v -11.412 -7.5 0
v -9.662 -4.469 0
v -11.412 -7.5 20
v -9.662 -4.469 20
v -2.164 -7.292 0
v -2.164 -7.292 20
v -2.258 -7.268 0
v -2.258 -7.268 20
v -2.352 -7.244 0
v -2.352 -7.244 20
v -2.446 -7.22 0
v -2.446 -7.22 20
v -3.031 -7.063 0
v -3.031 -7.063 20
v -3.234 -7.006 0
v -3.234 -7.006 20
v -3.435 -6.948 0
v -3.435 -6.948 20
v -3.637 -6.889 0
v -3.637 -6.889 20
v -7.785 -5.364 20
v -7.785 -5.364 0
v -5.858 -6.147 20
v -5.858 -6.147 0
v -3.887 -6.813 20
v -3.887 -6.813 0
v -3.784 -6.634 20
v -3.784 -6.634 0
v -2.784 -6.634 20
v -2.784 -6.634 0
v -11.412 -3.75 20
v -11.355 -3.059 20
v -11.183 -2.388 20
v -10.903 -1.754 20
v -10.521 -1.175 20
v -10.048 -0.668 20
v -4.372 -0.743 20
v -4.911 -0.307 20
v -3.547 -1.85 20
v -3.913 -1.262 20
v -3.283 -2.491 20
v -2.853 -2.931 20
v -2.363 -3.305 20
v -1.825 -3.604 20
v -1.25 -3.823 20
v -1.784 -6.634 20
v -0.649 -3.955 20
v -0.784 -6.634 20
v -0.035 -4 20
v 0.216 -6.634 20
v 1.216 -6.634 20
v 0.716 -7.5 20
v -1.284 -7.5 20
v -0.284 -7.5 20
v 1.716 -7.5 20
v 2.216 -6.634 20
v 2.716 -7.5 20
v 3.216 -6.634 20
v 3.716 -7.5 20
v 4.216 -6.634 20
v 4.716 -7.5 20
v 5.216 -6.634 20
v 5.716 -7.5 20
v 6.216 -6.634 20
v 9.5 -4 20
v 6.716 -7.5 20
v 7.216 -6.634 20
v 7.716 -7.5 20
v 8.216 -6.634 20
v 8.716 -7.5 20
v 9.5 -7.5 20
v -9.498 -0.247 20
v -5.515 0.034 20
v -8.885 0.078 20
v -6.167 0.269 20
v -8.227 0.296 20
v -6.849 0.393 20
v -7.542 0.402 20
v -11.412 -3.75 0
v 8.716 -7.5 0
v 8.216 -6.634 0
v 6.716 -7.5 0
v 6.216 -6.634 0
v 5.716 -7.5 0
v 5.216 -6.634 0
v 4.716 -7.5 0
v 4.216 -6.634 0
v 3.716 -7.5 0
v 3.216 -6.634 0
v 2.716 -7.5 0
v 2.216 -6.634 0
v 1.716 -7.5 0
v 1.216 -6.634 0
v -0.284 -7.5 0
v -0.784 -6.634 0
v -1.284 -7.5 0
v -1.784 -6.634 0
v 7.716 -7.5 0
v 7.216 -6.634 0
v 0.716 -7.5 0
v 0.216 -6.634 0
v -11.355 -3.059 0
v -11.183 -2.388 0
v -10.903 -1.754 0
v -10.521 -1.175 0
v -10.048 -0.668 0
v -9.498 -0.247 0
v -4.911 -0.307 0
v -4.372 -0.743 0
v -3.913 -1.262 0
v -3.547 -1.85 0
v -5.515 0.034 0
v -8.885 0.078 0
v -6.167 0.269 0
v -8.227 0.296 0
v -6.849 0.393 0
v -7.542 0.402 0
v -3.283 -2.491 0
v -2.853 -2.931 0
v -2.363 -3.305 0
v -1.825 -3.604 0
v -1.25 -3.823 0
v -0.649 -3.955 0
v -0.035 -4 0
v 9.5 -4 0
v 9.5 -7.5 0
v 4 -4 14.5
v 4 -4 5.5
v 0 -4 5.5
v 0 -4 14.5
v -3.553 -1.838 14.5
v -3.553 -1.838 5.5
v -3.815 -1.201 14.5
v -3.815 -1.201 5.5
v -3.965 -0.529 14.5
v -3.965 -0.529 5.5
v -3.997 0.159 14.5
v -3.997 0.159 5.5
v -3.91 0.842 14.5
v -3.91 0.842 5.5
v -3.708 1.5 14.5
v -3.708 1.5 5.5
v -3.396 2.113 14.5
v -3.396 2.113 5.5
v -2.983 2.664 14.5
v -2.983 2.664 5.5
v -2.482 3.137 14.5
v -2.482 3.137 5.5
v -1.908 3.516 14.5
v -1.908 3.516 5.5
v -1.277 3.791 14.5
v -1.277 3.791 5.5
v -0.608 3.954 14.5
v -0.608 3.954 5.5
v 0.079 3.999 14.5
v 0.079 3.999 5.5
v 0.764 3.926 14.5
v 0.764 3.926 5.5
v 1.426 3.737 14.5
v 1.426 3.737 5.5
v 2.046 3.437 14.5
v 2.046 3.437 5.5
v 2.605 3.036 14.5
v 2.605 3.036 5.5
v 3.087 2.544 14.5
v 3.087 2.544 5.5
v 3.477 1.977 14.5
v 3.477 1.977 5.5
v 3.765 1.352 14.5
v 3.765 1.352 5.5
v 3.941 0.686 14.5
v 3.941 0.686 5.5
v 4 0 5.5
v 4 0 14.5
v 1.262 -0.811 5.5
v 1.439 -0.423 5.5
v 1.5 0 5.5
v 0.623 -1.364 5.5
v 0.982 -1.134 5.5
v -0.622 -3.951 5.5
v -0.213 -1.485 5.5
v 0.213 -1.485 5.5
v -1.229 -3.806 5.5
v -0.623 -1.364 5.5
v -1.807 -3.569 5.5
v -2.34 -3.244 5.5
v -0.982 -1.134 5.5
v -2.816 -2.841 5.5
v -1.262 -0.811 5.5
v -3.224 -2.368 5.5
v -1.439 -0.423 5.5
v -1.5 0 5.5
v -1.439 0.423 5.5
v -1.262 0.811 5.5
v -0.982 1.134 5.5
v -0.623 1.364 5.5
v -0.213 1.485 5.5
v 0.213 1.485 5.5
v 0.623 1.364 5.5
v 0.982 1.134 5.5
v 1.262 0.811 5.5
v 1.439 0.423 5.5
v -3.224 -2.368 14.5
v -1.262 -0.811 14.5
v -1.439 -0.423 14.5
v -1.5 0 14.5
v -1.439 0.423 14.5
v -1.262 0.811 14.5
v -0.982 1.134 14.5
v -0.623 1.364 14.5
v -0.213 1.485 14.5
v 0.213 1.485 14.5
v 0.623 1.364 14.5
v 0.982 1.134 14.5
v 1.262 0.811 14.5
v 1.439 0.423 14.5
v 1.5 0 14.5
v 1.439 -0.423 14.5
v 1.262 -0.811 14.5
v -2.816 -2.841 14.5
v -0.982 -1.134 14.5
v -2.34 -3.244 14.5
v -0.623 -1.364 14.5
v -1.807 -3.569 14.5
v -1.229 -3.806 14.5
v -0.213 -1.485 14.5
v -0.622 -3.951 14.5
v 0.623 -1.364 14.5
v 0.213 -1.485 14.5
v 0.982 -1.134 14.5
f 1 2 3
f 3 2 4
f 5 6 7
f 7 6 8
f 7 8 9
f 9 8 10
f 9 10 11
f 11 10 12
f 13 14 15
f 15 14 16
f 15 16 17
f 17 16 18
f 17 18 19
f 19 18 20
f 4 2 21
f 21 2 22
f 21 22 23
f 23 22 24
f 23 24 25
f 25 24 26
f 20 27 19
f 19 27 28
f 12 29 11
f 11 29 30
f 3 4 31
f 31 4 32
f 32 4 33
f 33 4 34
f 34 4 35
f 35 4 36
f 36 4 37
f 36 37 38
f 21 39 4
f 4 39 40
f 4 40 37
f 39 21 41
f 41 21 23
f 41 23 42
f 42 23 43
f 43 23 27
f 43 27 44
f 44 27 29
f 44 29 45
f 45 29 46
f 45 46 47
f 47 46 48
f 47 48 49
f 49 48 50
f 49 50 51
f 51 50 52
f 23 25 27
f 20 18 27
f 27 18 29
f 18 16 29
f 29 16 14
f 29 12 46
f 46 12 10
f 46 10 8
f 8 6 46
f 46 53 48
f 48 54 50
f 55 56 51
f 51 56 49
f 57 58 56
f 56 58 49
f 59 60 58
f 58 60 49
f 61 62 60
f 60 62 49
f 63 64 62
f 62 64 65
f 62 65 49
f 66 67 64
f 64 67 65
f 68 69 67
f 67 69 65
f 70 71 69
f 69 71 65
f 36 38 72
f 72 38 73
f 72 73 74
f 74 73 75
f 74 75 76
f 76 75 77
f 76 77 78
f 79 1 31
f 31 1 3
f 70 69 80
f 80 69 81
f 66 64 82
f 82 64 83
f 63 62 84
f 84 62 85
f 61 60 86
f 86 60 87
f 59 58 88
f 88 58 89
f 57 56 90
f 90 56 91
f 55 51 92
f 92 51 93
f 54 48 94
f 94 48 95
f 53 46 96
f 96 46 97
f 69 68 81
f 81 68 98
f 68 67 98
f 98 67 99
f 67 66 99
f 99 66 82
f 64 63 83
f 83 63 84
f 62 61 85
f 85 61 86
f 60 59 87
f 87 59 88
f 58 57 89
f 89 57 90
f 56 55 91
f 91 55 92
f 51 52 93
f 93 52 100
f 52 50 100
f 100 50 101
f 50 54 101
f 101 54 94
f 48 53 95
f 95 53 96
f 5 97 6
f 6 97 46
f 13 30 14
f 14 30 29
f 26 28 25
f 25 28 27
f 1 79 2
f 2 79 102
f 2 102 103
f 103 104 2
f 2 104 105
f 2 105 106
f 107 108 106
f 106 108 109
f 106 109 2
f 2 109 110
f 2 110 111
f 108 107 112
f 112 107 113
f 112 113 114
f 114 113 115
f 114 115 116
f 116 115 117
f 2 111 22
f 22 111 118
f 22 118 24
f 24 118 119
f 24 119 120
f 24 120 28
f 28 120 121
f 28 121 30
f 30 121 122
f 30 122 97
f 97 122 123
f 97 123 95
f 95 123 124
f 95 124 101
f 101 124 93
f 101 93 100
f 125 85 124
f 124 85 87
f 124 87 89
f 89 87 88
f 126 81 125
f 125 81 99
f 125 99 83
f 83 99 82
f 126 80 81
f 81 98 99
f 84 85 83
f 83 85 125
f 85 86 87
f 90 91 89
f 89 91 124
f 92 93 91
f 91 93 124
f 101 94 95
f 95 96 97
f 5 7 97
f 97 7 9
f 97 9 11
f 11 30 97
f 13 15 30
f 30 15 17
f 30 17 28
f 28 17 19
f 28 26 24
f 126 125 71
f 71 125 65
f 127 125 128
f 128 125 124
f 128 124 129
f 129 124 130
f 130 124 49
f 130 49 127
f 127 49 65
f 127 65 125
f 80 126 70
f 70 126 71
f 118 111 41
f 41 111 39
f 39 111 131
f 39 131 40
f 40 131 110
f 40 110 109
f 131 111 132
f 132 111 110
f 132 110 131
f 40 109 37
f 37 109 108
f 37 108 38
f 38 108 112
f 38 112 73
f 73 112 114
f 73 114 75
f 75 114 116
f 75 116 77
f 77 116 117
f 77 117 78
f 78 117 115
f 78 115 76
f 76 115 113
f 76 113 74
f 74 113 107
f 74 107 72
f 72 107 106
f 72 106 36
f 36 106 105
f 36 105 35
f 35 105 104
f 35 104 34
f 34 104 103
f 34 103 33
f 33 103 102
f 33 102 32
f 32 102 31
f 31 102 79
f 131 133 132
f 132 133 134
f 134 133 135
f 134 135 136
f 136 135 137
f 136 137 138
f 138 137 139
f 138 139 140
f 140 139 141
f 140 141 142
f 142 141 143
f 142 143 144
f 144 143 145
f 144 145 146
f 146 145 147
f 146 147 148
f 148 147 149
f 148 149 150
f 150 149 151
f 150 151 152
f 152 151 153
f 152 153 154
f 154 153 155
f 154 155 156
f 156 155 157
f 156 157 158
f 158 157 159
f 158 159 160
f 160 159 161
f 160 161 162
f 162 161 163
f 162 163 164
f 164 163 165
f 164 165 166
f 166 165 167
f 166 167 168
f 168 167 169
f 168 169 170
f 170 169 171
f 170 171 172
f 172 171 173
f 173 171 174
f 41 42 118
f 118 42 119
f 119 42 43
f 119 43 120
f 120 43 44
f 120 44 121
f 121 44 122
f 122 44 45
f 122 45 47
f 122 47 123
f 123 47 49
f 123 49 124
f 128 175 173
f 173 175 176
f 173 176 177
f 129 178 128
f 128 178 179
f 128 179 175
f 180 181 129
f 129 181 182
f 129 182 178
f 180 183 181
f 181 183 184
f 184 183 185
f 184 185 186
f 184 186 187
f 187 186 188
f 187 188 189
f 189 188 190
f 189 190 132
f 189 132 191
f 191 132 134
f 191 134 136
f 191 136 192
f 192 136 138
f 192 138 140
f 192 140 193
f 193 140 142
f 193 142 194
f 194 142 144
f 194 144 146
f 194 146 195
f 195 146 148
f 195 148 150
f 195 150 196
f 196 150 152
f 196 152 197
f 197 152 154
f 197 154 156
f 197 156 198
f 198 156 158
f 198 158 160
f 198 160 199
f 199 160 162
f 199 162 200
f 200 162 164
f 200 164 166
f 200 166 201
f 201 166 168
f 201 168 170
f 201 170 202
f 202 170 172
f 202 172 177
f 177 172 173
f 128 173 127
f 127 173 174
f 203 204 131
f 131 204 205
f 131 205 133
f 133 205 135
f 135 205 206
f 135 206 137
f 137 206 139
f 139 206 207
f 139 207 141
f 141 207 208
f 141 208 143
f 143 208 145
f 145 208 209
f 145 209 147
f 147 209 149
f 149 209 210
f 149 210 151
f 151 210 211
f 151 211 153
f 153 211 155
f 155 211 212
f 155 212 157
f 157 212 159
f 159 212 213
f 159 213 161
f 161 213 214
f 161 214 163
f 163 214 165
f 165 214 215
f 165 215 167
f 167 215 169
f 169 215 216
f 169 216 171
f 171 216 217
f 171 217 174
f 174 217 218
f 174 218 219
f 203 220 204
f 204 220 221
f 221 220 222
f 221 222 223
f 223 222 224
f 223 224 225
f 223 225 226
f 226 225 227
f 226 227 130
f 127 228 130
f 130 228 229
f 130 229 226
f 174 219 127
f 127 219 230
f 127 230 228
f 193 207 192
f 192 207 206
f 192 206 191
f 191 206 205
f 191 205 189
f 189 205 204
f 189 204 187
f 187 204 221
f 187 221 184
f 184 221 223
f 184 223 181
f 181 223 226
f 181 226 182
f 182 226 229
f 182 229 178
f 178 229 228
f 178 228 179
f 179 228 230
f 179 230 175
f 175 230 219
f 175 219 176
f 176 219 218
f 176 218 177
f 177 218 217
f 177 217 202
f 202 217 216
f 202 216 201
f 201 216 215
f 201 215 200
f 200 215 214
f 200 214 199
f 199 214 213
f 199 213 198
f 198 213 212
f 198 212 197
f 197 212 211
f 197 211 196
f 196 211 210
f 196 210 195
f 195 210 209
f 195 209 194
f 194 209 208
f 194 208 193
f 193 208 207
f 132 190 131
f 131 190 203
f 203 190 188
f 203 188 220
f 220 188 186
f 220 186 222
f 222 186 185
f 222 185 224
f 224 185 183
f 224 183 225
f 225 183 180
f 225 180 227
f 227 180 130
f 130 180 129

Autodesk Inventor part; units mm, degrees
ref_plane "YZ Plane" through (0, 0, 0) normal (1, 0, 0) x (0, 1, 0)
ref_plane "XZ Plane" through (0, 0, 0) normal (0, 1, 0) x (-1, 0, 0)
ref_plane "XY Plane" through (0, 0, 0) normal (0, 0, 1) x (1, 0, 0)
sketch "Sketch23" plane through (0, 0, 0) normal (0, 0, 1) x (1, 0, 0)
  arc A0 (4, 0) -> (0, -4) centre (0, 0) ccw
  line L0 (-4, 0) -> (4, 0)
  line L1 (4, 0) -> (4, -4.25)
  line L2 (0, -4) -> (-3.2578, -4)
  line L3 (-4, -1.4182) -> (-4, 0)
  line L4 (10.5, -4.25) -> (10.5, -7.75)
  line L5 (10.5, -7.75) -> (-4.5, -7.75)
  line L6 (-7.75, -4.25) -> (-7.25, -4.25)
  line L7 (-3.2578, -4) -> (0, -4)
  line L8 (4, -4.25) -> (10.5, -4.25)
  line L9 (-7.25, -4.25) -> (-7.25, -3.75)
  arc A1 (-3.2578, -4) -> (-11.25, -3.75) centre (-7.25, -3.75) ccw
  line L10 (-11.25, -3.75) -> (-11.25, -7.75)
  line L11 (-7.25, -7.75) -> (-11.25, -7.75)
  line L12 (-7.25, -7.75) -> (-4.5, -7.75)
  dimension "d140" = 8
  dimension "d141" = 15
  dimension "d142" = 3.5
  dimension "d143" = 4.25
  dimension "d166" = 0.5
  dimension "d167" = 8
extrude "Extrusion25" add sketch "Sketch23" along normal blind 20 contours L0 A0 | L1 L8 L4 L5 L12 L11 L10 A1 L2 A0 L0
sketch "Sketch30" plane through (0, 0, 20) normal (0, 0, 1) x (1, 0, 0)
  circle A0 centre (0, 0) radius 1.5
  dimension "d168" = 3
extrude "Extrusion30" cut sketch "Sketch30" against normal through all
sketch "Sketch31" plane through (0, 0, 20) normal (0, 0, 1) x (1, 0, 0)
  line L0 (0, -4) -> (10.5, -4)
  line L1 (10.5, -7.75) -> (10.5, -4.25) projected
  line L2 (10.5, -4) -> (10.5, -7.75)
  line L3 (-11.25, -7.75) -> (10.5, -7.75) projected
  line L4 (0, -4) -> (10.5, -4)
  line L5 (10.5, -4) -> (10.5, -7.75)
  line L6 (10.5, -7.75) -> (0, -7.75)
  line L7 (0, -7.75) -> (0, -4)
  point P0 (0, 0)
  point P1 (0, -7.75)
extrude "Extrusion31" add sketch "Sketch31" against normal up to surface (20 mm away)
sketch "Sketch32" plane through (0, 0, 20) normal (0, 0, 1) x (1, 0, 0)
  circle A0 centre (0, 0) radius 4
  line L0 (4, -4) -> (10.5, -4) projected
  line L1 (0, 0) -> (4, 0)
  line L2 (4, 0) -> (4, -4)
  line L3 (4, -4) -> (0, -4)
  line L4 (0, -4) -> (0, 0)
  circle A1 centre (0, 0) radius 1.5
extrude "Extrusion32" cut sketch "Sketch32" against normal blind 5.5 contours L1 A1 L4 A0 | L2 L3 A0 | A0 L4 A1 L1
sketch "Sketch33" plane through (0, 0, 0) normal (0, 0, -1) x (-1, 0, 0)
  circle A0 centre (0, 0) radius 4
  circle A1 centre (0, 0) radius 1.5
  line L0 (-10.5, -4) -> (3.2578, -4) projected
  line L1 (0, 0) -> (-4, 0)
  line L2 (-4, 0) -> (-4, -4)
  line L3 (-4, -4) -> (0, -4)
  line L4 (0, -4) -> (0, 0)
  point P0 (0, -4)
extrude "Extrusion33" cut sketch "Sketch33" against normal blind 5.5 contours A0 L4 A1 L1 | L1 A1 L4 A0 | A0 L0 L2
fillet "Fillet3" radius 4.25 1 edges at (-3.2578, -4, 10)
sketch "Sketch34" plane through (0, 0, 20) normal (0, 0, 1) x (1, 0, 0)
  arc A0 (-3.7516, -1.8106) -> (-11.25, -3.75) centre (-7.25, -3.75) ccw projected
  circle A1 centre (-7.25, -3.75) radius 4.1624
  arc A2 (4, 0) -> (0, -4) centre (0, 0) ccw projected
  line L0 (-11.25, -7.75) -> (10.5, -7.75) projected
  line L1 (-8.4014, -7.75) -> (-6.0986, -7.75)
  line L2 (-11.25, -3.75) -> (-11.25, -7.75) projected
  arc A3 (-11.4124, -3.75) -> (-11.25, -7.75) centre (8.552, -4.9427) ccw
  line L3 (-11.25, -7.75) -> (-6.0986, -7.75)
  dimension "d185" = 20
extrude "Extrusion36" add sketch "Sketch34" against normal up to surface (20 mm away) contours L0 L2 A1 | A1 L0 | L2 A3 A1 picked at (-6.2004, -2.965)
sketch "Sketch35" plane through (0, 0, 20) normal (0, 0, 1) x (1, 0, 0)
  line L0 (10.5, -7.75) -> (10.5, -4) projected
  arc A0 (-11.4124, -3.75) -> (-11.25, -7.75) centre (8.552, -4.9427) ccw projected
  line L1 (10.5, -7.75) -> (-11.2838, -7.75)
  line L2 (-11.2838, -7.75) -> (-11.2838, -7.5)
  line L3 (-11.2838, -7.5) -> (10.5, -7.5)
  line L4 (10.5, -7.5) -> (10.5, -7.75)
  point P0 (0, 0)
  point P1 (10.5, -7.5)
  point P2 (-11.25, -7.75)
  dimension "d188" = 0.25
extrude "Extrusion37" cut sketch "Sketch35" against normal through all contours L1 A0 L3 L0
sketch "Sketch36" plane through (0, 0, 20) normal (0, 0, 1) x (1, 0, 0)
  line L0 (-11.2838, -7.5) -> (10.5, -7.5) projected
  line L1 (10.5, -4) -> (-0.0346, -4) projected
  line L2 (10.5, -7.5) -> (9.5, -7.5)
  line L3 (9.5, -7.5) -> (9.5, -4)
  line L4 (9.5, -4) -> (10.5, -4)
  line L5 (10.5, -4) -> (10.5, -7.5)
  point P0 (0, 0)
  dimension "d191" = 1
extrude "Extrusion38" cut sketch "Sketch36" against normal through all
sketch "Sketch38" plane through (0, 0, 0) normal (0, 0, -1) x (-1, 0, 0)
  arc A0 (11.2838, -7.5) -> (11.4124, -3.75) centre (-8.552, -4.9427) ccw projected
  line L0 (11.2838, -7.5) -> (10.7838, -6.634)
  line L1 (11.2838, -7.5) -> (12.2838, -7.5) construction
  line L2 (10.7838, -6.634) -> (10.2838, -7.5)
  line L3 (-9.5, -7.5) -> (11.2838, -7.5) projected
  line L4 (10.2838, -7.5) -> (9.7838, -6.634)
  line L5 (9.7838, -6.634) -> (9.2838, -7.5)
  line L6 (9.2838, -7.5) -> (8.7838, -6.634)
  line L7 (8.7838, -6.634) -> (8.2838, -7.5)
  line L8 (8.2838, -7.5) -> (7.7838, -6.634)
  line L9 (7.7838, -6.634) -> (7.2838, -7.5)
  line L10 (7.2838, -7.5) -> (6.7838, -6.634)
  line L11 (6.7838, -6.634) -> (6.2838, -7.5)
  line L12 (6.2838, -7.5) -> (5.7838, -6.634)
  line L13 (5.7838, -6.634) -> (5.2838, -7.5)
  line L14 (5.2838, -7.5) -> (4.7838, -6.634)
  line L15 (4.7838, -6.634) -> (4.2838, -7.5)
  line L16 (4.2838, -7.5) -> (3.7838, -6.634)
  line L17 (3.7838, -6.634) -> (3.2838, -7.5)
  line L18 (3.2838, -7.5) -> (2.7838, -6.634)
  line L19 (2.7838, -6.634) -> (2.2838, -7.5)
  line L20 (2.2838, -7.5) -> (1.7838, -6.634)
  line L21 (1.7838, -6.634) -> (1.2838, -7.5)
  line L22 (1.2838, -7.5) -> (0.7838, -6.634)
  line L23 (0.7838, -6.634) -> (0.2838, -7.5)
  line L24 (0.2838, -7.5) -> (-0.2162, -6.634)
  line L25 (-0.2162, -6.634) -> (-0.7162, -7.5)
  line L26 (-0.7162, -7.5) -> (-1.2162, -6.634)
  line L27 (-1.2162, -6.634) -> (-1.7162, -7.5)
  line L28 (-1.7162, -7.5) -> (-2.2162, -6.634)
  line L29 (-2.2162, -6.634) -> (-2.7162, -7.5)
  line L30 (-2.7162, -7.5) -> (-3.2162, -6.634)
  line L31 (-3.2162, -6.634) -> (-3.7162, -7.5)
  line L32 (-3.7162, -7.5) -> (-4.2162, -6.634)
  line L33 (-4.2162, -6.634) -> (-4.7162, -7.5)
  line L34 (-4.7162, -7.5) -> (-5.2162, -6.634)
  line L35 (-5.2162, -6.634) -> (-5.7162, -7.5)
  line L36 (-5.7162, -7.5) -> (-6.2162, -6.634)
  line L37 (-6.2162, -6.634) -> (-6.7162, -7.5)
  line L38 (-6.7162, -7.5) -> (-7.2162, -6.634)
  line L39 (-7.2162, -6.634) -> (-7.7162, -7.5)
  line L40 (-7.7162, -7.5) -> (-8.2162, -6.634)
  line L41 (-8.2162, -6.634) -> (-8.7162, -7.5)
  line L42 (11.2838, -7.5) -> (-8.7162, -7.5)
  point P0 (0, 0)
  dimension "d205" = 1
  dimension "d206" = 120
  dimension "d209" = 1
extrude "Extrusion40" cut sketch "Sketch38" against normal through all
sketch "Sketch39" plane through (0, 0, 20) normal (0, 0, 1) x (1, 0, 0)
  arc A0 (-11.4124, -3.75) -> (-11.2838, -7.5) centre (8.552, -4.9427) ccw projected
  line L0 (-11.4124, -3.75) -> (-11.4124, -7.5)
  line L1 (-10.7838, -6.634) -> (-11.2838, -7.5) projected
  line L2 (-11.4124, -7.5) -> (-10.7838, -6.634)
  line L3 (-10.7838, -6.634) -> (-11.4124, -3.75)
  point P0 (0, 0)
  point P1 (-11.4124, -6.1353)
  point P2 (-11.3027, -7.3489)
extrude "Extrusion41" add sketch "Sketch39" against normal up to surface (20 mm away) contours L3 L2 A0 L0 | A0 L2 L0
sketch "Sketch40" plane through (0, 0, 20) normal (0, 0, 1) x (1, 0, 0)
  line L0 (-11.4124, -6.1353) -> (-11.4124, -7.5) projected
  line L1 (-11.4124, -7.5) -> (-11.4124, 0)
  line L2 (-11.4124, -7.5) -> (-3.9124, -7.5) construction
  line L3 (-11.4124, 0) -> (-12.4534, 0)
  line L4 (-12.4534, 0) -> (-12.4534, -7.5)
  line L5 (-12.4534, -7.5) -> (-11.4124, -7.5)
  line L6 (-11.4124, -7.5) -> (-10.7811, -6.63)
  line L7 (-11.4124, -7.5) -> (-10.3375, -7.5) construction
  line L8 (-10.7811, -6.63) -> (-10.7811, -7.5)
  line L9 (-11.4124, -7.5) -> (-10.7811, -7.5)
  point P0 (0, 0)
  dimension "d218" = 90
  dimension "d219" = 54.03
extrude "Extrusion42" cut sketch "Sketch40" against normal through all
sketch "Sketch41" plane through (0, 0, 20) normal (0, 0, 1) x (1, 0, 0)
  line L0 (-11.4124, -7.5) -> (-11.4124, -3.75) projected
  line L1 (-11.4124, -7.5) -> (-10.2377, -5.8814)
  line L2 (-11.4124, -7.5) -> (-9.4124, -7.5) construction
  line L3 (-9.7838, -6.634) -> (-10.2838, -7.5) projected
  line L4 (-10.2377, -5.8814) -> (-10.2838, -7.5)
  line L5 (-10.2838, -7.5) -> (-10.7839, -6.6339)
  line L6 (-10.2838, -7.5) -> (-10.7811, -6.6388) projected
  point P0 (0, 0)
  dimension "d222" = 2
  dimension "d223" = 54.03
extrude "Extrusion43" cut sketch "Sketch41" against normal through all
sketch "Sketch42" plane through (0, 0, 20) normal (0, 0, 1) x (1, 0, 0)
  line L0 (-11.3027, -7.3489) -> (-11.4124, -7.5) projected
  line L1 (-11.4124, -7.5) -> (-9.6624, -4.4689)
  line L2 (-11.4124, -7.5) -> (-7.9124, -7.5) construction
  line L3 (-9.2838, -7.5) -> (-8.7838, -6.634) projected
  line L4 (-9.6624, -4.4689) -> (-9.2838, -7.5)
  line L5 (-11.4124, -7.5) -> (-11.4124, -3.75) projected
  line L6 (-9.2838, -7.5) -> (-11.4124, -7.5)
  arc A0 (-9.6624, -4.4689) -> (-1.2838, -7.5) centre (6.3367, 26.6603) ccw
  line L7 (-9.2838, -7.5) -> (-9.7838, -6.634) projected
  line L8 (-9.2838, -7.5) -> (-1.2838, -7.5)
  point P0 (0, 0)
  point P1 (-1.2838, -7.5)
  dimension "d226" = 3.5
  dimension "d227" = 60
  dimension "d230" = 35
extrude "Extrusion44" cut sketch "Sketch42" against normal through all
properties part number "Nail"
